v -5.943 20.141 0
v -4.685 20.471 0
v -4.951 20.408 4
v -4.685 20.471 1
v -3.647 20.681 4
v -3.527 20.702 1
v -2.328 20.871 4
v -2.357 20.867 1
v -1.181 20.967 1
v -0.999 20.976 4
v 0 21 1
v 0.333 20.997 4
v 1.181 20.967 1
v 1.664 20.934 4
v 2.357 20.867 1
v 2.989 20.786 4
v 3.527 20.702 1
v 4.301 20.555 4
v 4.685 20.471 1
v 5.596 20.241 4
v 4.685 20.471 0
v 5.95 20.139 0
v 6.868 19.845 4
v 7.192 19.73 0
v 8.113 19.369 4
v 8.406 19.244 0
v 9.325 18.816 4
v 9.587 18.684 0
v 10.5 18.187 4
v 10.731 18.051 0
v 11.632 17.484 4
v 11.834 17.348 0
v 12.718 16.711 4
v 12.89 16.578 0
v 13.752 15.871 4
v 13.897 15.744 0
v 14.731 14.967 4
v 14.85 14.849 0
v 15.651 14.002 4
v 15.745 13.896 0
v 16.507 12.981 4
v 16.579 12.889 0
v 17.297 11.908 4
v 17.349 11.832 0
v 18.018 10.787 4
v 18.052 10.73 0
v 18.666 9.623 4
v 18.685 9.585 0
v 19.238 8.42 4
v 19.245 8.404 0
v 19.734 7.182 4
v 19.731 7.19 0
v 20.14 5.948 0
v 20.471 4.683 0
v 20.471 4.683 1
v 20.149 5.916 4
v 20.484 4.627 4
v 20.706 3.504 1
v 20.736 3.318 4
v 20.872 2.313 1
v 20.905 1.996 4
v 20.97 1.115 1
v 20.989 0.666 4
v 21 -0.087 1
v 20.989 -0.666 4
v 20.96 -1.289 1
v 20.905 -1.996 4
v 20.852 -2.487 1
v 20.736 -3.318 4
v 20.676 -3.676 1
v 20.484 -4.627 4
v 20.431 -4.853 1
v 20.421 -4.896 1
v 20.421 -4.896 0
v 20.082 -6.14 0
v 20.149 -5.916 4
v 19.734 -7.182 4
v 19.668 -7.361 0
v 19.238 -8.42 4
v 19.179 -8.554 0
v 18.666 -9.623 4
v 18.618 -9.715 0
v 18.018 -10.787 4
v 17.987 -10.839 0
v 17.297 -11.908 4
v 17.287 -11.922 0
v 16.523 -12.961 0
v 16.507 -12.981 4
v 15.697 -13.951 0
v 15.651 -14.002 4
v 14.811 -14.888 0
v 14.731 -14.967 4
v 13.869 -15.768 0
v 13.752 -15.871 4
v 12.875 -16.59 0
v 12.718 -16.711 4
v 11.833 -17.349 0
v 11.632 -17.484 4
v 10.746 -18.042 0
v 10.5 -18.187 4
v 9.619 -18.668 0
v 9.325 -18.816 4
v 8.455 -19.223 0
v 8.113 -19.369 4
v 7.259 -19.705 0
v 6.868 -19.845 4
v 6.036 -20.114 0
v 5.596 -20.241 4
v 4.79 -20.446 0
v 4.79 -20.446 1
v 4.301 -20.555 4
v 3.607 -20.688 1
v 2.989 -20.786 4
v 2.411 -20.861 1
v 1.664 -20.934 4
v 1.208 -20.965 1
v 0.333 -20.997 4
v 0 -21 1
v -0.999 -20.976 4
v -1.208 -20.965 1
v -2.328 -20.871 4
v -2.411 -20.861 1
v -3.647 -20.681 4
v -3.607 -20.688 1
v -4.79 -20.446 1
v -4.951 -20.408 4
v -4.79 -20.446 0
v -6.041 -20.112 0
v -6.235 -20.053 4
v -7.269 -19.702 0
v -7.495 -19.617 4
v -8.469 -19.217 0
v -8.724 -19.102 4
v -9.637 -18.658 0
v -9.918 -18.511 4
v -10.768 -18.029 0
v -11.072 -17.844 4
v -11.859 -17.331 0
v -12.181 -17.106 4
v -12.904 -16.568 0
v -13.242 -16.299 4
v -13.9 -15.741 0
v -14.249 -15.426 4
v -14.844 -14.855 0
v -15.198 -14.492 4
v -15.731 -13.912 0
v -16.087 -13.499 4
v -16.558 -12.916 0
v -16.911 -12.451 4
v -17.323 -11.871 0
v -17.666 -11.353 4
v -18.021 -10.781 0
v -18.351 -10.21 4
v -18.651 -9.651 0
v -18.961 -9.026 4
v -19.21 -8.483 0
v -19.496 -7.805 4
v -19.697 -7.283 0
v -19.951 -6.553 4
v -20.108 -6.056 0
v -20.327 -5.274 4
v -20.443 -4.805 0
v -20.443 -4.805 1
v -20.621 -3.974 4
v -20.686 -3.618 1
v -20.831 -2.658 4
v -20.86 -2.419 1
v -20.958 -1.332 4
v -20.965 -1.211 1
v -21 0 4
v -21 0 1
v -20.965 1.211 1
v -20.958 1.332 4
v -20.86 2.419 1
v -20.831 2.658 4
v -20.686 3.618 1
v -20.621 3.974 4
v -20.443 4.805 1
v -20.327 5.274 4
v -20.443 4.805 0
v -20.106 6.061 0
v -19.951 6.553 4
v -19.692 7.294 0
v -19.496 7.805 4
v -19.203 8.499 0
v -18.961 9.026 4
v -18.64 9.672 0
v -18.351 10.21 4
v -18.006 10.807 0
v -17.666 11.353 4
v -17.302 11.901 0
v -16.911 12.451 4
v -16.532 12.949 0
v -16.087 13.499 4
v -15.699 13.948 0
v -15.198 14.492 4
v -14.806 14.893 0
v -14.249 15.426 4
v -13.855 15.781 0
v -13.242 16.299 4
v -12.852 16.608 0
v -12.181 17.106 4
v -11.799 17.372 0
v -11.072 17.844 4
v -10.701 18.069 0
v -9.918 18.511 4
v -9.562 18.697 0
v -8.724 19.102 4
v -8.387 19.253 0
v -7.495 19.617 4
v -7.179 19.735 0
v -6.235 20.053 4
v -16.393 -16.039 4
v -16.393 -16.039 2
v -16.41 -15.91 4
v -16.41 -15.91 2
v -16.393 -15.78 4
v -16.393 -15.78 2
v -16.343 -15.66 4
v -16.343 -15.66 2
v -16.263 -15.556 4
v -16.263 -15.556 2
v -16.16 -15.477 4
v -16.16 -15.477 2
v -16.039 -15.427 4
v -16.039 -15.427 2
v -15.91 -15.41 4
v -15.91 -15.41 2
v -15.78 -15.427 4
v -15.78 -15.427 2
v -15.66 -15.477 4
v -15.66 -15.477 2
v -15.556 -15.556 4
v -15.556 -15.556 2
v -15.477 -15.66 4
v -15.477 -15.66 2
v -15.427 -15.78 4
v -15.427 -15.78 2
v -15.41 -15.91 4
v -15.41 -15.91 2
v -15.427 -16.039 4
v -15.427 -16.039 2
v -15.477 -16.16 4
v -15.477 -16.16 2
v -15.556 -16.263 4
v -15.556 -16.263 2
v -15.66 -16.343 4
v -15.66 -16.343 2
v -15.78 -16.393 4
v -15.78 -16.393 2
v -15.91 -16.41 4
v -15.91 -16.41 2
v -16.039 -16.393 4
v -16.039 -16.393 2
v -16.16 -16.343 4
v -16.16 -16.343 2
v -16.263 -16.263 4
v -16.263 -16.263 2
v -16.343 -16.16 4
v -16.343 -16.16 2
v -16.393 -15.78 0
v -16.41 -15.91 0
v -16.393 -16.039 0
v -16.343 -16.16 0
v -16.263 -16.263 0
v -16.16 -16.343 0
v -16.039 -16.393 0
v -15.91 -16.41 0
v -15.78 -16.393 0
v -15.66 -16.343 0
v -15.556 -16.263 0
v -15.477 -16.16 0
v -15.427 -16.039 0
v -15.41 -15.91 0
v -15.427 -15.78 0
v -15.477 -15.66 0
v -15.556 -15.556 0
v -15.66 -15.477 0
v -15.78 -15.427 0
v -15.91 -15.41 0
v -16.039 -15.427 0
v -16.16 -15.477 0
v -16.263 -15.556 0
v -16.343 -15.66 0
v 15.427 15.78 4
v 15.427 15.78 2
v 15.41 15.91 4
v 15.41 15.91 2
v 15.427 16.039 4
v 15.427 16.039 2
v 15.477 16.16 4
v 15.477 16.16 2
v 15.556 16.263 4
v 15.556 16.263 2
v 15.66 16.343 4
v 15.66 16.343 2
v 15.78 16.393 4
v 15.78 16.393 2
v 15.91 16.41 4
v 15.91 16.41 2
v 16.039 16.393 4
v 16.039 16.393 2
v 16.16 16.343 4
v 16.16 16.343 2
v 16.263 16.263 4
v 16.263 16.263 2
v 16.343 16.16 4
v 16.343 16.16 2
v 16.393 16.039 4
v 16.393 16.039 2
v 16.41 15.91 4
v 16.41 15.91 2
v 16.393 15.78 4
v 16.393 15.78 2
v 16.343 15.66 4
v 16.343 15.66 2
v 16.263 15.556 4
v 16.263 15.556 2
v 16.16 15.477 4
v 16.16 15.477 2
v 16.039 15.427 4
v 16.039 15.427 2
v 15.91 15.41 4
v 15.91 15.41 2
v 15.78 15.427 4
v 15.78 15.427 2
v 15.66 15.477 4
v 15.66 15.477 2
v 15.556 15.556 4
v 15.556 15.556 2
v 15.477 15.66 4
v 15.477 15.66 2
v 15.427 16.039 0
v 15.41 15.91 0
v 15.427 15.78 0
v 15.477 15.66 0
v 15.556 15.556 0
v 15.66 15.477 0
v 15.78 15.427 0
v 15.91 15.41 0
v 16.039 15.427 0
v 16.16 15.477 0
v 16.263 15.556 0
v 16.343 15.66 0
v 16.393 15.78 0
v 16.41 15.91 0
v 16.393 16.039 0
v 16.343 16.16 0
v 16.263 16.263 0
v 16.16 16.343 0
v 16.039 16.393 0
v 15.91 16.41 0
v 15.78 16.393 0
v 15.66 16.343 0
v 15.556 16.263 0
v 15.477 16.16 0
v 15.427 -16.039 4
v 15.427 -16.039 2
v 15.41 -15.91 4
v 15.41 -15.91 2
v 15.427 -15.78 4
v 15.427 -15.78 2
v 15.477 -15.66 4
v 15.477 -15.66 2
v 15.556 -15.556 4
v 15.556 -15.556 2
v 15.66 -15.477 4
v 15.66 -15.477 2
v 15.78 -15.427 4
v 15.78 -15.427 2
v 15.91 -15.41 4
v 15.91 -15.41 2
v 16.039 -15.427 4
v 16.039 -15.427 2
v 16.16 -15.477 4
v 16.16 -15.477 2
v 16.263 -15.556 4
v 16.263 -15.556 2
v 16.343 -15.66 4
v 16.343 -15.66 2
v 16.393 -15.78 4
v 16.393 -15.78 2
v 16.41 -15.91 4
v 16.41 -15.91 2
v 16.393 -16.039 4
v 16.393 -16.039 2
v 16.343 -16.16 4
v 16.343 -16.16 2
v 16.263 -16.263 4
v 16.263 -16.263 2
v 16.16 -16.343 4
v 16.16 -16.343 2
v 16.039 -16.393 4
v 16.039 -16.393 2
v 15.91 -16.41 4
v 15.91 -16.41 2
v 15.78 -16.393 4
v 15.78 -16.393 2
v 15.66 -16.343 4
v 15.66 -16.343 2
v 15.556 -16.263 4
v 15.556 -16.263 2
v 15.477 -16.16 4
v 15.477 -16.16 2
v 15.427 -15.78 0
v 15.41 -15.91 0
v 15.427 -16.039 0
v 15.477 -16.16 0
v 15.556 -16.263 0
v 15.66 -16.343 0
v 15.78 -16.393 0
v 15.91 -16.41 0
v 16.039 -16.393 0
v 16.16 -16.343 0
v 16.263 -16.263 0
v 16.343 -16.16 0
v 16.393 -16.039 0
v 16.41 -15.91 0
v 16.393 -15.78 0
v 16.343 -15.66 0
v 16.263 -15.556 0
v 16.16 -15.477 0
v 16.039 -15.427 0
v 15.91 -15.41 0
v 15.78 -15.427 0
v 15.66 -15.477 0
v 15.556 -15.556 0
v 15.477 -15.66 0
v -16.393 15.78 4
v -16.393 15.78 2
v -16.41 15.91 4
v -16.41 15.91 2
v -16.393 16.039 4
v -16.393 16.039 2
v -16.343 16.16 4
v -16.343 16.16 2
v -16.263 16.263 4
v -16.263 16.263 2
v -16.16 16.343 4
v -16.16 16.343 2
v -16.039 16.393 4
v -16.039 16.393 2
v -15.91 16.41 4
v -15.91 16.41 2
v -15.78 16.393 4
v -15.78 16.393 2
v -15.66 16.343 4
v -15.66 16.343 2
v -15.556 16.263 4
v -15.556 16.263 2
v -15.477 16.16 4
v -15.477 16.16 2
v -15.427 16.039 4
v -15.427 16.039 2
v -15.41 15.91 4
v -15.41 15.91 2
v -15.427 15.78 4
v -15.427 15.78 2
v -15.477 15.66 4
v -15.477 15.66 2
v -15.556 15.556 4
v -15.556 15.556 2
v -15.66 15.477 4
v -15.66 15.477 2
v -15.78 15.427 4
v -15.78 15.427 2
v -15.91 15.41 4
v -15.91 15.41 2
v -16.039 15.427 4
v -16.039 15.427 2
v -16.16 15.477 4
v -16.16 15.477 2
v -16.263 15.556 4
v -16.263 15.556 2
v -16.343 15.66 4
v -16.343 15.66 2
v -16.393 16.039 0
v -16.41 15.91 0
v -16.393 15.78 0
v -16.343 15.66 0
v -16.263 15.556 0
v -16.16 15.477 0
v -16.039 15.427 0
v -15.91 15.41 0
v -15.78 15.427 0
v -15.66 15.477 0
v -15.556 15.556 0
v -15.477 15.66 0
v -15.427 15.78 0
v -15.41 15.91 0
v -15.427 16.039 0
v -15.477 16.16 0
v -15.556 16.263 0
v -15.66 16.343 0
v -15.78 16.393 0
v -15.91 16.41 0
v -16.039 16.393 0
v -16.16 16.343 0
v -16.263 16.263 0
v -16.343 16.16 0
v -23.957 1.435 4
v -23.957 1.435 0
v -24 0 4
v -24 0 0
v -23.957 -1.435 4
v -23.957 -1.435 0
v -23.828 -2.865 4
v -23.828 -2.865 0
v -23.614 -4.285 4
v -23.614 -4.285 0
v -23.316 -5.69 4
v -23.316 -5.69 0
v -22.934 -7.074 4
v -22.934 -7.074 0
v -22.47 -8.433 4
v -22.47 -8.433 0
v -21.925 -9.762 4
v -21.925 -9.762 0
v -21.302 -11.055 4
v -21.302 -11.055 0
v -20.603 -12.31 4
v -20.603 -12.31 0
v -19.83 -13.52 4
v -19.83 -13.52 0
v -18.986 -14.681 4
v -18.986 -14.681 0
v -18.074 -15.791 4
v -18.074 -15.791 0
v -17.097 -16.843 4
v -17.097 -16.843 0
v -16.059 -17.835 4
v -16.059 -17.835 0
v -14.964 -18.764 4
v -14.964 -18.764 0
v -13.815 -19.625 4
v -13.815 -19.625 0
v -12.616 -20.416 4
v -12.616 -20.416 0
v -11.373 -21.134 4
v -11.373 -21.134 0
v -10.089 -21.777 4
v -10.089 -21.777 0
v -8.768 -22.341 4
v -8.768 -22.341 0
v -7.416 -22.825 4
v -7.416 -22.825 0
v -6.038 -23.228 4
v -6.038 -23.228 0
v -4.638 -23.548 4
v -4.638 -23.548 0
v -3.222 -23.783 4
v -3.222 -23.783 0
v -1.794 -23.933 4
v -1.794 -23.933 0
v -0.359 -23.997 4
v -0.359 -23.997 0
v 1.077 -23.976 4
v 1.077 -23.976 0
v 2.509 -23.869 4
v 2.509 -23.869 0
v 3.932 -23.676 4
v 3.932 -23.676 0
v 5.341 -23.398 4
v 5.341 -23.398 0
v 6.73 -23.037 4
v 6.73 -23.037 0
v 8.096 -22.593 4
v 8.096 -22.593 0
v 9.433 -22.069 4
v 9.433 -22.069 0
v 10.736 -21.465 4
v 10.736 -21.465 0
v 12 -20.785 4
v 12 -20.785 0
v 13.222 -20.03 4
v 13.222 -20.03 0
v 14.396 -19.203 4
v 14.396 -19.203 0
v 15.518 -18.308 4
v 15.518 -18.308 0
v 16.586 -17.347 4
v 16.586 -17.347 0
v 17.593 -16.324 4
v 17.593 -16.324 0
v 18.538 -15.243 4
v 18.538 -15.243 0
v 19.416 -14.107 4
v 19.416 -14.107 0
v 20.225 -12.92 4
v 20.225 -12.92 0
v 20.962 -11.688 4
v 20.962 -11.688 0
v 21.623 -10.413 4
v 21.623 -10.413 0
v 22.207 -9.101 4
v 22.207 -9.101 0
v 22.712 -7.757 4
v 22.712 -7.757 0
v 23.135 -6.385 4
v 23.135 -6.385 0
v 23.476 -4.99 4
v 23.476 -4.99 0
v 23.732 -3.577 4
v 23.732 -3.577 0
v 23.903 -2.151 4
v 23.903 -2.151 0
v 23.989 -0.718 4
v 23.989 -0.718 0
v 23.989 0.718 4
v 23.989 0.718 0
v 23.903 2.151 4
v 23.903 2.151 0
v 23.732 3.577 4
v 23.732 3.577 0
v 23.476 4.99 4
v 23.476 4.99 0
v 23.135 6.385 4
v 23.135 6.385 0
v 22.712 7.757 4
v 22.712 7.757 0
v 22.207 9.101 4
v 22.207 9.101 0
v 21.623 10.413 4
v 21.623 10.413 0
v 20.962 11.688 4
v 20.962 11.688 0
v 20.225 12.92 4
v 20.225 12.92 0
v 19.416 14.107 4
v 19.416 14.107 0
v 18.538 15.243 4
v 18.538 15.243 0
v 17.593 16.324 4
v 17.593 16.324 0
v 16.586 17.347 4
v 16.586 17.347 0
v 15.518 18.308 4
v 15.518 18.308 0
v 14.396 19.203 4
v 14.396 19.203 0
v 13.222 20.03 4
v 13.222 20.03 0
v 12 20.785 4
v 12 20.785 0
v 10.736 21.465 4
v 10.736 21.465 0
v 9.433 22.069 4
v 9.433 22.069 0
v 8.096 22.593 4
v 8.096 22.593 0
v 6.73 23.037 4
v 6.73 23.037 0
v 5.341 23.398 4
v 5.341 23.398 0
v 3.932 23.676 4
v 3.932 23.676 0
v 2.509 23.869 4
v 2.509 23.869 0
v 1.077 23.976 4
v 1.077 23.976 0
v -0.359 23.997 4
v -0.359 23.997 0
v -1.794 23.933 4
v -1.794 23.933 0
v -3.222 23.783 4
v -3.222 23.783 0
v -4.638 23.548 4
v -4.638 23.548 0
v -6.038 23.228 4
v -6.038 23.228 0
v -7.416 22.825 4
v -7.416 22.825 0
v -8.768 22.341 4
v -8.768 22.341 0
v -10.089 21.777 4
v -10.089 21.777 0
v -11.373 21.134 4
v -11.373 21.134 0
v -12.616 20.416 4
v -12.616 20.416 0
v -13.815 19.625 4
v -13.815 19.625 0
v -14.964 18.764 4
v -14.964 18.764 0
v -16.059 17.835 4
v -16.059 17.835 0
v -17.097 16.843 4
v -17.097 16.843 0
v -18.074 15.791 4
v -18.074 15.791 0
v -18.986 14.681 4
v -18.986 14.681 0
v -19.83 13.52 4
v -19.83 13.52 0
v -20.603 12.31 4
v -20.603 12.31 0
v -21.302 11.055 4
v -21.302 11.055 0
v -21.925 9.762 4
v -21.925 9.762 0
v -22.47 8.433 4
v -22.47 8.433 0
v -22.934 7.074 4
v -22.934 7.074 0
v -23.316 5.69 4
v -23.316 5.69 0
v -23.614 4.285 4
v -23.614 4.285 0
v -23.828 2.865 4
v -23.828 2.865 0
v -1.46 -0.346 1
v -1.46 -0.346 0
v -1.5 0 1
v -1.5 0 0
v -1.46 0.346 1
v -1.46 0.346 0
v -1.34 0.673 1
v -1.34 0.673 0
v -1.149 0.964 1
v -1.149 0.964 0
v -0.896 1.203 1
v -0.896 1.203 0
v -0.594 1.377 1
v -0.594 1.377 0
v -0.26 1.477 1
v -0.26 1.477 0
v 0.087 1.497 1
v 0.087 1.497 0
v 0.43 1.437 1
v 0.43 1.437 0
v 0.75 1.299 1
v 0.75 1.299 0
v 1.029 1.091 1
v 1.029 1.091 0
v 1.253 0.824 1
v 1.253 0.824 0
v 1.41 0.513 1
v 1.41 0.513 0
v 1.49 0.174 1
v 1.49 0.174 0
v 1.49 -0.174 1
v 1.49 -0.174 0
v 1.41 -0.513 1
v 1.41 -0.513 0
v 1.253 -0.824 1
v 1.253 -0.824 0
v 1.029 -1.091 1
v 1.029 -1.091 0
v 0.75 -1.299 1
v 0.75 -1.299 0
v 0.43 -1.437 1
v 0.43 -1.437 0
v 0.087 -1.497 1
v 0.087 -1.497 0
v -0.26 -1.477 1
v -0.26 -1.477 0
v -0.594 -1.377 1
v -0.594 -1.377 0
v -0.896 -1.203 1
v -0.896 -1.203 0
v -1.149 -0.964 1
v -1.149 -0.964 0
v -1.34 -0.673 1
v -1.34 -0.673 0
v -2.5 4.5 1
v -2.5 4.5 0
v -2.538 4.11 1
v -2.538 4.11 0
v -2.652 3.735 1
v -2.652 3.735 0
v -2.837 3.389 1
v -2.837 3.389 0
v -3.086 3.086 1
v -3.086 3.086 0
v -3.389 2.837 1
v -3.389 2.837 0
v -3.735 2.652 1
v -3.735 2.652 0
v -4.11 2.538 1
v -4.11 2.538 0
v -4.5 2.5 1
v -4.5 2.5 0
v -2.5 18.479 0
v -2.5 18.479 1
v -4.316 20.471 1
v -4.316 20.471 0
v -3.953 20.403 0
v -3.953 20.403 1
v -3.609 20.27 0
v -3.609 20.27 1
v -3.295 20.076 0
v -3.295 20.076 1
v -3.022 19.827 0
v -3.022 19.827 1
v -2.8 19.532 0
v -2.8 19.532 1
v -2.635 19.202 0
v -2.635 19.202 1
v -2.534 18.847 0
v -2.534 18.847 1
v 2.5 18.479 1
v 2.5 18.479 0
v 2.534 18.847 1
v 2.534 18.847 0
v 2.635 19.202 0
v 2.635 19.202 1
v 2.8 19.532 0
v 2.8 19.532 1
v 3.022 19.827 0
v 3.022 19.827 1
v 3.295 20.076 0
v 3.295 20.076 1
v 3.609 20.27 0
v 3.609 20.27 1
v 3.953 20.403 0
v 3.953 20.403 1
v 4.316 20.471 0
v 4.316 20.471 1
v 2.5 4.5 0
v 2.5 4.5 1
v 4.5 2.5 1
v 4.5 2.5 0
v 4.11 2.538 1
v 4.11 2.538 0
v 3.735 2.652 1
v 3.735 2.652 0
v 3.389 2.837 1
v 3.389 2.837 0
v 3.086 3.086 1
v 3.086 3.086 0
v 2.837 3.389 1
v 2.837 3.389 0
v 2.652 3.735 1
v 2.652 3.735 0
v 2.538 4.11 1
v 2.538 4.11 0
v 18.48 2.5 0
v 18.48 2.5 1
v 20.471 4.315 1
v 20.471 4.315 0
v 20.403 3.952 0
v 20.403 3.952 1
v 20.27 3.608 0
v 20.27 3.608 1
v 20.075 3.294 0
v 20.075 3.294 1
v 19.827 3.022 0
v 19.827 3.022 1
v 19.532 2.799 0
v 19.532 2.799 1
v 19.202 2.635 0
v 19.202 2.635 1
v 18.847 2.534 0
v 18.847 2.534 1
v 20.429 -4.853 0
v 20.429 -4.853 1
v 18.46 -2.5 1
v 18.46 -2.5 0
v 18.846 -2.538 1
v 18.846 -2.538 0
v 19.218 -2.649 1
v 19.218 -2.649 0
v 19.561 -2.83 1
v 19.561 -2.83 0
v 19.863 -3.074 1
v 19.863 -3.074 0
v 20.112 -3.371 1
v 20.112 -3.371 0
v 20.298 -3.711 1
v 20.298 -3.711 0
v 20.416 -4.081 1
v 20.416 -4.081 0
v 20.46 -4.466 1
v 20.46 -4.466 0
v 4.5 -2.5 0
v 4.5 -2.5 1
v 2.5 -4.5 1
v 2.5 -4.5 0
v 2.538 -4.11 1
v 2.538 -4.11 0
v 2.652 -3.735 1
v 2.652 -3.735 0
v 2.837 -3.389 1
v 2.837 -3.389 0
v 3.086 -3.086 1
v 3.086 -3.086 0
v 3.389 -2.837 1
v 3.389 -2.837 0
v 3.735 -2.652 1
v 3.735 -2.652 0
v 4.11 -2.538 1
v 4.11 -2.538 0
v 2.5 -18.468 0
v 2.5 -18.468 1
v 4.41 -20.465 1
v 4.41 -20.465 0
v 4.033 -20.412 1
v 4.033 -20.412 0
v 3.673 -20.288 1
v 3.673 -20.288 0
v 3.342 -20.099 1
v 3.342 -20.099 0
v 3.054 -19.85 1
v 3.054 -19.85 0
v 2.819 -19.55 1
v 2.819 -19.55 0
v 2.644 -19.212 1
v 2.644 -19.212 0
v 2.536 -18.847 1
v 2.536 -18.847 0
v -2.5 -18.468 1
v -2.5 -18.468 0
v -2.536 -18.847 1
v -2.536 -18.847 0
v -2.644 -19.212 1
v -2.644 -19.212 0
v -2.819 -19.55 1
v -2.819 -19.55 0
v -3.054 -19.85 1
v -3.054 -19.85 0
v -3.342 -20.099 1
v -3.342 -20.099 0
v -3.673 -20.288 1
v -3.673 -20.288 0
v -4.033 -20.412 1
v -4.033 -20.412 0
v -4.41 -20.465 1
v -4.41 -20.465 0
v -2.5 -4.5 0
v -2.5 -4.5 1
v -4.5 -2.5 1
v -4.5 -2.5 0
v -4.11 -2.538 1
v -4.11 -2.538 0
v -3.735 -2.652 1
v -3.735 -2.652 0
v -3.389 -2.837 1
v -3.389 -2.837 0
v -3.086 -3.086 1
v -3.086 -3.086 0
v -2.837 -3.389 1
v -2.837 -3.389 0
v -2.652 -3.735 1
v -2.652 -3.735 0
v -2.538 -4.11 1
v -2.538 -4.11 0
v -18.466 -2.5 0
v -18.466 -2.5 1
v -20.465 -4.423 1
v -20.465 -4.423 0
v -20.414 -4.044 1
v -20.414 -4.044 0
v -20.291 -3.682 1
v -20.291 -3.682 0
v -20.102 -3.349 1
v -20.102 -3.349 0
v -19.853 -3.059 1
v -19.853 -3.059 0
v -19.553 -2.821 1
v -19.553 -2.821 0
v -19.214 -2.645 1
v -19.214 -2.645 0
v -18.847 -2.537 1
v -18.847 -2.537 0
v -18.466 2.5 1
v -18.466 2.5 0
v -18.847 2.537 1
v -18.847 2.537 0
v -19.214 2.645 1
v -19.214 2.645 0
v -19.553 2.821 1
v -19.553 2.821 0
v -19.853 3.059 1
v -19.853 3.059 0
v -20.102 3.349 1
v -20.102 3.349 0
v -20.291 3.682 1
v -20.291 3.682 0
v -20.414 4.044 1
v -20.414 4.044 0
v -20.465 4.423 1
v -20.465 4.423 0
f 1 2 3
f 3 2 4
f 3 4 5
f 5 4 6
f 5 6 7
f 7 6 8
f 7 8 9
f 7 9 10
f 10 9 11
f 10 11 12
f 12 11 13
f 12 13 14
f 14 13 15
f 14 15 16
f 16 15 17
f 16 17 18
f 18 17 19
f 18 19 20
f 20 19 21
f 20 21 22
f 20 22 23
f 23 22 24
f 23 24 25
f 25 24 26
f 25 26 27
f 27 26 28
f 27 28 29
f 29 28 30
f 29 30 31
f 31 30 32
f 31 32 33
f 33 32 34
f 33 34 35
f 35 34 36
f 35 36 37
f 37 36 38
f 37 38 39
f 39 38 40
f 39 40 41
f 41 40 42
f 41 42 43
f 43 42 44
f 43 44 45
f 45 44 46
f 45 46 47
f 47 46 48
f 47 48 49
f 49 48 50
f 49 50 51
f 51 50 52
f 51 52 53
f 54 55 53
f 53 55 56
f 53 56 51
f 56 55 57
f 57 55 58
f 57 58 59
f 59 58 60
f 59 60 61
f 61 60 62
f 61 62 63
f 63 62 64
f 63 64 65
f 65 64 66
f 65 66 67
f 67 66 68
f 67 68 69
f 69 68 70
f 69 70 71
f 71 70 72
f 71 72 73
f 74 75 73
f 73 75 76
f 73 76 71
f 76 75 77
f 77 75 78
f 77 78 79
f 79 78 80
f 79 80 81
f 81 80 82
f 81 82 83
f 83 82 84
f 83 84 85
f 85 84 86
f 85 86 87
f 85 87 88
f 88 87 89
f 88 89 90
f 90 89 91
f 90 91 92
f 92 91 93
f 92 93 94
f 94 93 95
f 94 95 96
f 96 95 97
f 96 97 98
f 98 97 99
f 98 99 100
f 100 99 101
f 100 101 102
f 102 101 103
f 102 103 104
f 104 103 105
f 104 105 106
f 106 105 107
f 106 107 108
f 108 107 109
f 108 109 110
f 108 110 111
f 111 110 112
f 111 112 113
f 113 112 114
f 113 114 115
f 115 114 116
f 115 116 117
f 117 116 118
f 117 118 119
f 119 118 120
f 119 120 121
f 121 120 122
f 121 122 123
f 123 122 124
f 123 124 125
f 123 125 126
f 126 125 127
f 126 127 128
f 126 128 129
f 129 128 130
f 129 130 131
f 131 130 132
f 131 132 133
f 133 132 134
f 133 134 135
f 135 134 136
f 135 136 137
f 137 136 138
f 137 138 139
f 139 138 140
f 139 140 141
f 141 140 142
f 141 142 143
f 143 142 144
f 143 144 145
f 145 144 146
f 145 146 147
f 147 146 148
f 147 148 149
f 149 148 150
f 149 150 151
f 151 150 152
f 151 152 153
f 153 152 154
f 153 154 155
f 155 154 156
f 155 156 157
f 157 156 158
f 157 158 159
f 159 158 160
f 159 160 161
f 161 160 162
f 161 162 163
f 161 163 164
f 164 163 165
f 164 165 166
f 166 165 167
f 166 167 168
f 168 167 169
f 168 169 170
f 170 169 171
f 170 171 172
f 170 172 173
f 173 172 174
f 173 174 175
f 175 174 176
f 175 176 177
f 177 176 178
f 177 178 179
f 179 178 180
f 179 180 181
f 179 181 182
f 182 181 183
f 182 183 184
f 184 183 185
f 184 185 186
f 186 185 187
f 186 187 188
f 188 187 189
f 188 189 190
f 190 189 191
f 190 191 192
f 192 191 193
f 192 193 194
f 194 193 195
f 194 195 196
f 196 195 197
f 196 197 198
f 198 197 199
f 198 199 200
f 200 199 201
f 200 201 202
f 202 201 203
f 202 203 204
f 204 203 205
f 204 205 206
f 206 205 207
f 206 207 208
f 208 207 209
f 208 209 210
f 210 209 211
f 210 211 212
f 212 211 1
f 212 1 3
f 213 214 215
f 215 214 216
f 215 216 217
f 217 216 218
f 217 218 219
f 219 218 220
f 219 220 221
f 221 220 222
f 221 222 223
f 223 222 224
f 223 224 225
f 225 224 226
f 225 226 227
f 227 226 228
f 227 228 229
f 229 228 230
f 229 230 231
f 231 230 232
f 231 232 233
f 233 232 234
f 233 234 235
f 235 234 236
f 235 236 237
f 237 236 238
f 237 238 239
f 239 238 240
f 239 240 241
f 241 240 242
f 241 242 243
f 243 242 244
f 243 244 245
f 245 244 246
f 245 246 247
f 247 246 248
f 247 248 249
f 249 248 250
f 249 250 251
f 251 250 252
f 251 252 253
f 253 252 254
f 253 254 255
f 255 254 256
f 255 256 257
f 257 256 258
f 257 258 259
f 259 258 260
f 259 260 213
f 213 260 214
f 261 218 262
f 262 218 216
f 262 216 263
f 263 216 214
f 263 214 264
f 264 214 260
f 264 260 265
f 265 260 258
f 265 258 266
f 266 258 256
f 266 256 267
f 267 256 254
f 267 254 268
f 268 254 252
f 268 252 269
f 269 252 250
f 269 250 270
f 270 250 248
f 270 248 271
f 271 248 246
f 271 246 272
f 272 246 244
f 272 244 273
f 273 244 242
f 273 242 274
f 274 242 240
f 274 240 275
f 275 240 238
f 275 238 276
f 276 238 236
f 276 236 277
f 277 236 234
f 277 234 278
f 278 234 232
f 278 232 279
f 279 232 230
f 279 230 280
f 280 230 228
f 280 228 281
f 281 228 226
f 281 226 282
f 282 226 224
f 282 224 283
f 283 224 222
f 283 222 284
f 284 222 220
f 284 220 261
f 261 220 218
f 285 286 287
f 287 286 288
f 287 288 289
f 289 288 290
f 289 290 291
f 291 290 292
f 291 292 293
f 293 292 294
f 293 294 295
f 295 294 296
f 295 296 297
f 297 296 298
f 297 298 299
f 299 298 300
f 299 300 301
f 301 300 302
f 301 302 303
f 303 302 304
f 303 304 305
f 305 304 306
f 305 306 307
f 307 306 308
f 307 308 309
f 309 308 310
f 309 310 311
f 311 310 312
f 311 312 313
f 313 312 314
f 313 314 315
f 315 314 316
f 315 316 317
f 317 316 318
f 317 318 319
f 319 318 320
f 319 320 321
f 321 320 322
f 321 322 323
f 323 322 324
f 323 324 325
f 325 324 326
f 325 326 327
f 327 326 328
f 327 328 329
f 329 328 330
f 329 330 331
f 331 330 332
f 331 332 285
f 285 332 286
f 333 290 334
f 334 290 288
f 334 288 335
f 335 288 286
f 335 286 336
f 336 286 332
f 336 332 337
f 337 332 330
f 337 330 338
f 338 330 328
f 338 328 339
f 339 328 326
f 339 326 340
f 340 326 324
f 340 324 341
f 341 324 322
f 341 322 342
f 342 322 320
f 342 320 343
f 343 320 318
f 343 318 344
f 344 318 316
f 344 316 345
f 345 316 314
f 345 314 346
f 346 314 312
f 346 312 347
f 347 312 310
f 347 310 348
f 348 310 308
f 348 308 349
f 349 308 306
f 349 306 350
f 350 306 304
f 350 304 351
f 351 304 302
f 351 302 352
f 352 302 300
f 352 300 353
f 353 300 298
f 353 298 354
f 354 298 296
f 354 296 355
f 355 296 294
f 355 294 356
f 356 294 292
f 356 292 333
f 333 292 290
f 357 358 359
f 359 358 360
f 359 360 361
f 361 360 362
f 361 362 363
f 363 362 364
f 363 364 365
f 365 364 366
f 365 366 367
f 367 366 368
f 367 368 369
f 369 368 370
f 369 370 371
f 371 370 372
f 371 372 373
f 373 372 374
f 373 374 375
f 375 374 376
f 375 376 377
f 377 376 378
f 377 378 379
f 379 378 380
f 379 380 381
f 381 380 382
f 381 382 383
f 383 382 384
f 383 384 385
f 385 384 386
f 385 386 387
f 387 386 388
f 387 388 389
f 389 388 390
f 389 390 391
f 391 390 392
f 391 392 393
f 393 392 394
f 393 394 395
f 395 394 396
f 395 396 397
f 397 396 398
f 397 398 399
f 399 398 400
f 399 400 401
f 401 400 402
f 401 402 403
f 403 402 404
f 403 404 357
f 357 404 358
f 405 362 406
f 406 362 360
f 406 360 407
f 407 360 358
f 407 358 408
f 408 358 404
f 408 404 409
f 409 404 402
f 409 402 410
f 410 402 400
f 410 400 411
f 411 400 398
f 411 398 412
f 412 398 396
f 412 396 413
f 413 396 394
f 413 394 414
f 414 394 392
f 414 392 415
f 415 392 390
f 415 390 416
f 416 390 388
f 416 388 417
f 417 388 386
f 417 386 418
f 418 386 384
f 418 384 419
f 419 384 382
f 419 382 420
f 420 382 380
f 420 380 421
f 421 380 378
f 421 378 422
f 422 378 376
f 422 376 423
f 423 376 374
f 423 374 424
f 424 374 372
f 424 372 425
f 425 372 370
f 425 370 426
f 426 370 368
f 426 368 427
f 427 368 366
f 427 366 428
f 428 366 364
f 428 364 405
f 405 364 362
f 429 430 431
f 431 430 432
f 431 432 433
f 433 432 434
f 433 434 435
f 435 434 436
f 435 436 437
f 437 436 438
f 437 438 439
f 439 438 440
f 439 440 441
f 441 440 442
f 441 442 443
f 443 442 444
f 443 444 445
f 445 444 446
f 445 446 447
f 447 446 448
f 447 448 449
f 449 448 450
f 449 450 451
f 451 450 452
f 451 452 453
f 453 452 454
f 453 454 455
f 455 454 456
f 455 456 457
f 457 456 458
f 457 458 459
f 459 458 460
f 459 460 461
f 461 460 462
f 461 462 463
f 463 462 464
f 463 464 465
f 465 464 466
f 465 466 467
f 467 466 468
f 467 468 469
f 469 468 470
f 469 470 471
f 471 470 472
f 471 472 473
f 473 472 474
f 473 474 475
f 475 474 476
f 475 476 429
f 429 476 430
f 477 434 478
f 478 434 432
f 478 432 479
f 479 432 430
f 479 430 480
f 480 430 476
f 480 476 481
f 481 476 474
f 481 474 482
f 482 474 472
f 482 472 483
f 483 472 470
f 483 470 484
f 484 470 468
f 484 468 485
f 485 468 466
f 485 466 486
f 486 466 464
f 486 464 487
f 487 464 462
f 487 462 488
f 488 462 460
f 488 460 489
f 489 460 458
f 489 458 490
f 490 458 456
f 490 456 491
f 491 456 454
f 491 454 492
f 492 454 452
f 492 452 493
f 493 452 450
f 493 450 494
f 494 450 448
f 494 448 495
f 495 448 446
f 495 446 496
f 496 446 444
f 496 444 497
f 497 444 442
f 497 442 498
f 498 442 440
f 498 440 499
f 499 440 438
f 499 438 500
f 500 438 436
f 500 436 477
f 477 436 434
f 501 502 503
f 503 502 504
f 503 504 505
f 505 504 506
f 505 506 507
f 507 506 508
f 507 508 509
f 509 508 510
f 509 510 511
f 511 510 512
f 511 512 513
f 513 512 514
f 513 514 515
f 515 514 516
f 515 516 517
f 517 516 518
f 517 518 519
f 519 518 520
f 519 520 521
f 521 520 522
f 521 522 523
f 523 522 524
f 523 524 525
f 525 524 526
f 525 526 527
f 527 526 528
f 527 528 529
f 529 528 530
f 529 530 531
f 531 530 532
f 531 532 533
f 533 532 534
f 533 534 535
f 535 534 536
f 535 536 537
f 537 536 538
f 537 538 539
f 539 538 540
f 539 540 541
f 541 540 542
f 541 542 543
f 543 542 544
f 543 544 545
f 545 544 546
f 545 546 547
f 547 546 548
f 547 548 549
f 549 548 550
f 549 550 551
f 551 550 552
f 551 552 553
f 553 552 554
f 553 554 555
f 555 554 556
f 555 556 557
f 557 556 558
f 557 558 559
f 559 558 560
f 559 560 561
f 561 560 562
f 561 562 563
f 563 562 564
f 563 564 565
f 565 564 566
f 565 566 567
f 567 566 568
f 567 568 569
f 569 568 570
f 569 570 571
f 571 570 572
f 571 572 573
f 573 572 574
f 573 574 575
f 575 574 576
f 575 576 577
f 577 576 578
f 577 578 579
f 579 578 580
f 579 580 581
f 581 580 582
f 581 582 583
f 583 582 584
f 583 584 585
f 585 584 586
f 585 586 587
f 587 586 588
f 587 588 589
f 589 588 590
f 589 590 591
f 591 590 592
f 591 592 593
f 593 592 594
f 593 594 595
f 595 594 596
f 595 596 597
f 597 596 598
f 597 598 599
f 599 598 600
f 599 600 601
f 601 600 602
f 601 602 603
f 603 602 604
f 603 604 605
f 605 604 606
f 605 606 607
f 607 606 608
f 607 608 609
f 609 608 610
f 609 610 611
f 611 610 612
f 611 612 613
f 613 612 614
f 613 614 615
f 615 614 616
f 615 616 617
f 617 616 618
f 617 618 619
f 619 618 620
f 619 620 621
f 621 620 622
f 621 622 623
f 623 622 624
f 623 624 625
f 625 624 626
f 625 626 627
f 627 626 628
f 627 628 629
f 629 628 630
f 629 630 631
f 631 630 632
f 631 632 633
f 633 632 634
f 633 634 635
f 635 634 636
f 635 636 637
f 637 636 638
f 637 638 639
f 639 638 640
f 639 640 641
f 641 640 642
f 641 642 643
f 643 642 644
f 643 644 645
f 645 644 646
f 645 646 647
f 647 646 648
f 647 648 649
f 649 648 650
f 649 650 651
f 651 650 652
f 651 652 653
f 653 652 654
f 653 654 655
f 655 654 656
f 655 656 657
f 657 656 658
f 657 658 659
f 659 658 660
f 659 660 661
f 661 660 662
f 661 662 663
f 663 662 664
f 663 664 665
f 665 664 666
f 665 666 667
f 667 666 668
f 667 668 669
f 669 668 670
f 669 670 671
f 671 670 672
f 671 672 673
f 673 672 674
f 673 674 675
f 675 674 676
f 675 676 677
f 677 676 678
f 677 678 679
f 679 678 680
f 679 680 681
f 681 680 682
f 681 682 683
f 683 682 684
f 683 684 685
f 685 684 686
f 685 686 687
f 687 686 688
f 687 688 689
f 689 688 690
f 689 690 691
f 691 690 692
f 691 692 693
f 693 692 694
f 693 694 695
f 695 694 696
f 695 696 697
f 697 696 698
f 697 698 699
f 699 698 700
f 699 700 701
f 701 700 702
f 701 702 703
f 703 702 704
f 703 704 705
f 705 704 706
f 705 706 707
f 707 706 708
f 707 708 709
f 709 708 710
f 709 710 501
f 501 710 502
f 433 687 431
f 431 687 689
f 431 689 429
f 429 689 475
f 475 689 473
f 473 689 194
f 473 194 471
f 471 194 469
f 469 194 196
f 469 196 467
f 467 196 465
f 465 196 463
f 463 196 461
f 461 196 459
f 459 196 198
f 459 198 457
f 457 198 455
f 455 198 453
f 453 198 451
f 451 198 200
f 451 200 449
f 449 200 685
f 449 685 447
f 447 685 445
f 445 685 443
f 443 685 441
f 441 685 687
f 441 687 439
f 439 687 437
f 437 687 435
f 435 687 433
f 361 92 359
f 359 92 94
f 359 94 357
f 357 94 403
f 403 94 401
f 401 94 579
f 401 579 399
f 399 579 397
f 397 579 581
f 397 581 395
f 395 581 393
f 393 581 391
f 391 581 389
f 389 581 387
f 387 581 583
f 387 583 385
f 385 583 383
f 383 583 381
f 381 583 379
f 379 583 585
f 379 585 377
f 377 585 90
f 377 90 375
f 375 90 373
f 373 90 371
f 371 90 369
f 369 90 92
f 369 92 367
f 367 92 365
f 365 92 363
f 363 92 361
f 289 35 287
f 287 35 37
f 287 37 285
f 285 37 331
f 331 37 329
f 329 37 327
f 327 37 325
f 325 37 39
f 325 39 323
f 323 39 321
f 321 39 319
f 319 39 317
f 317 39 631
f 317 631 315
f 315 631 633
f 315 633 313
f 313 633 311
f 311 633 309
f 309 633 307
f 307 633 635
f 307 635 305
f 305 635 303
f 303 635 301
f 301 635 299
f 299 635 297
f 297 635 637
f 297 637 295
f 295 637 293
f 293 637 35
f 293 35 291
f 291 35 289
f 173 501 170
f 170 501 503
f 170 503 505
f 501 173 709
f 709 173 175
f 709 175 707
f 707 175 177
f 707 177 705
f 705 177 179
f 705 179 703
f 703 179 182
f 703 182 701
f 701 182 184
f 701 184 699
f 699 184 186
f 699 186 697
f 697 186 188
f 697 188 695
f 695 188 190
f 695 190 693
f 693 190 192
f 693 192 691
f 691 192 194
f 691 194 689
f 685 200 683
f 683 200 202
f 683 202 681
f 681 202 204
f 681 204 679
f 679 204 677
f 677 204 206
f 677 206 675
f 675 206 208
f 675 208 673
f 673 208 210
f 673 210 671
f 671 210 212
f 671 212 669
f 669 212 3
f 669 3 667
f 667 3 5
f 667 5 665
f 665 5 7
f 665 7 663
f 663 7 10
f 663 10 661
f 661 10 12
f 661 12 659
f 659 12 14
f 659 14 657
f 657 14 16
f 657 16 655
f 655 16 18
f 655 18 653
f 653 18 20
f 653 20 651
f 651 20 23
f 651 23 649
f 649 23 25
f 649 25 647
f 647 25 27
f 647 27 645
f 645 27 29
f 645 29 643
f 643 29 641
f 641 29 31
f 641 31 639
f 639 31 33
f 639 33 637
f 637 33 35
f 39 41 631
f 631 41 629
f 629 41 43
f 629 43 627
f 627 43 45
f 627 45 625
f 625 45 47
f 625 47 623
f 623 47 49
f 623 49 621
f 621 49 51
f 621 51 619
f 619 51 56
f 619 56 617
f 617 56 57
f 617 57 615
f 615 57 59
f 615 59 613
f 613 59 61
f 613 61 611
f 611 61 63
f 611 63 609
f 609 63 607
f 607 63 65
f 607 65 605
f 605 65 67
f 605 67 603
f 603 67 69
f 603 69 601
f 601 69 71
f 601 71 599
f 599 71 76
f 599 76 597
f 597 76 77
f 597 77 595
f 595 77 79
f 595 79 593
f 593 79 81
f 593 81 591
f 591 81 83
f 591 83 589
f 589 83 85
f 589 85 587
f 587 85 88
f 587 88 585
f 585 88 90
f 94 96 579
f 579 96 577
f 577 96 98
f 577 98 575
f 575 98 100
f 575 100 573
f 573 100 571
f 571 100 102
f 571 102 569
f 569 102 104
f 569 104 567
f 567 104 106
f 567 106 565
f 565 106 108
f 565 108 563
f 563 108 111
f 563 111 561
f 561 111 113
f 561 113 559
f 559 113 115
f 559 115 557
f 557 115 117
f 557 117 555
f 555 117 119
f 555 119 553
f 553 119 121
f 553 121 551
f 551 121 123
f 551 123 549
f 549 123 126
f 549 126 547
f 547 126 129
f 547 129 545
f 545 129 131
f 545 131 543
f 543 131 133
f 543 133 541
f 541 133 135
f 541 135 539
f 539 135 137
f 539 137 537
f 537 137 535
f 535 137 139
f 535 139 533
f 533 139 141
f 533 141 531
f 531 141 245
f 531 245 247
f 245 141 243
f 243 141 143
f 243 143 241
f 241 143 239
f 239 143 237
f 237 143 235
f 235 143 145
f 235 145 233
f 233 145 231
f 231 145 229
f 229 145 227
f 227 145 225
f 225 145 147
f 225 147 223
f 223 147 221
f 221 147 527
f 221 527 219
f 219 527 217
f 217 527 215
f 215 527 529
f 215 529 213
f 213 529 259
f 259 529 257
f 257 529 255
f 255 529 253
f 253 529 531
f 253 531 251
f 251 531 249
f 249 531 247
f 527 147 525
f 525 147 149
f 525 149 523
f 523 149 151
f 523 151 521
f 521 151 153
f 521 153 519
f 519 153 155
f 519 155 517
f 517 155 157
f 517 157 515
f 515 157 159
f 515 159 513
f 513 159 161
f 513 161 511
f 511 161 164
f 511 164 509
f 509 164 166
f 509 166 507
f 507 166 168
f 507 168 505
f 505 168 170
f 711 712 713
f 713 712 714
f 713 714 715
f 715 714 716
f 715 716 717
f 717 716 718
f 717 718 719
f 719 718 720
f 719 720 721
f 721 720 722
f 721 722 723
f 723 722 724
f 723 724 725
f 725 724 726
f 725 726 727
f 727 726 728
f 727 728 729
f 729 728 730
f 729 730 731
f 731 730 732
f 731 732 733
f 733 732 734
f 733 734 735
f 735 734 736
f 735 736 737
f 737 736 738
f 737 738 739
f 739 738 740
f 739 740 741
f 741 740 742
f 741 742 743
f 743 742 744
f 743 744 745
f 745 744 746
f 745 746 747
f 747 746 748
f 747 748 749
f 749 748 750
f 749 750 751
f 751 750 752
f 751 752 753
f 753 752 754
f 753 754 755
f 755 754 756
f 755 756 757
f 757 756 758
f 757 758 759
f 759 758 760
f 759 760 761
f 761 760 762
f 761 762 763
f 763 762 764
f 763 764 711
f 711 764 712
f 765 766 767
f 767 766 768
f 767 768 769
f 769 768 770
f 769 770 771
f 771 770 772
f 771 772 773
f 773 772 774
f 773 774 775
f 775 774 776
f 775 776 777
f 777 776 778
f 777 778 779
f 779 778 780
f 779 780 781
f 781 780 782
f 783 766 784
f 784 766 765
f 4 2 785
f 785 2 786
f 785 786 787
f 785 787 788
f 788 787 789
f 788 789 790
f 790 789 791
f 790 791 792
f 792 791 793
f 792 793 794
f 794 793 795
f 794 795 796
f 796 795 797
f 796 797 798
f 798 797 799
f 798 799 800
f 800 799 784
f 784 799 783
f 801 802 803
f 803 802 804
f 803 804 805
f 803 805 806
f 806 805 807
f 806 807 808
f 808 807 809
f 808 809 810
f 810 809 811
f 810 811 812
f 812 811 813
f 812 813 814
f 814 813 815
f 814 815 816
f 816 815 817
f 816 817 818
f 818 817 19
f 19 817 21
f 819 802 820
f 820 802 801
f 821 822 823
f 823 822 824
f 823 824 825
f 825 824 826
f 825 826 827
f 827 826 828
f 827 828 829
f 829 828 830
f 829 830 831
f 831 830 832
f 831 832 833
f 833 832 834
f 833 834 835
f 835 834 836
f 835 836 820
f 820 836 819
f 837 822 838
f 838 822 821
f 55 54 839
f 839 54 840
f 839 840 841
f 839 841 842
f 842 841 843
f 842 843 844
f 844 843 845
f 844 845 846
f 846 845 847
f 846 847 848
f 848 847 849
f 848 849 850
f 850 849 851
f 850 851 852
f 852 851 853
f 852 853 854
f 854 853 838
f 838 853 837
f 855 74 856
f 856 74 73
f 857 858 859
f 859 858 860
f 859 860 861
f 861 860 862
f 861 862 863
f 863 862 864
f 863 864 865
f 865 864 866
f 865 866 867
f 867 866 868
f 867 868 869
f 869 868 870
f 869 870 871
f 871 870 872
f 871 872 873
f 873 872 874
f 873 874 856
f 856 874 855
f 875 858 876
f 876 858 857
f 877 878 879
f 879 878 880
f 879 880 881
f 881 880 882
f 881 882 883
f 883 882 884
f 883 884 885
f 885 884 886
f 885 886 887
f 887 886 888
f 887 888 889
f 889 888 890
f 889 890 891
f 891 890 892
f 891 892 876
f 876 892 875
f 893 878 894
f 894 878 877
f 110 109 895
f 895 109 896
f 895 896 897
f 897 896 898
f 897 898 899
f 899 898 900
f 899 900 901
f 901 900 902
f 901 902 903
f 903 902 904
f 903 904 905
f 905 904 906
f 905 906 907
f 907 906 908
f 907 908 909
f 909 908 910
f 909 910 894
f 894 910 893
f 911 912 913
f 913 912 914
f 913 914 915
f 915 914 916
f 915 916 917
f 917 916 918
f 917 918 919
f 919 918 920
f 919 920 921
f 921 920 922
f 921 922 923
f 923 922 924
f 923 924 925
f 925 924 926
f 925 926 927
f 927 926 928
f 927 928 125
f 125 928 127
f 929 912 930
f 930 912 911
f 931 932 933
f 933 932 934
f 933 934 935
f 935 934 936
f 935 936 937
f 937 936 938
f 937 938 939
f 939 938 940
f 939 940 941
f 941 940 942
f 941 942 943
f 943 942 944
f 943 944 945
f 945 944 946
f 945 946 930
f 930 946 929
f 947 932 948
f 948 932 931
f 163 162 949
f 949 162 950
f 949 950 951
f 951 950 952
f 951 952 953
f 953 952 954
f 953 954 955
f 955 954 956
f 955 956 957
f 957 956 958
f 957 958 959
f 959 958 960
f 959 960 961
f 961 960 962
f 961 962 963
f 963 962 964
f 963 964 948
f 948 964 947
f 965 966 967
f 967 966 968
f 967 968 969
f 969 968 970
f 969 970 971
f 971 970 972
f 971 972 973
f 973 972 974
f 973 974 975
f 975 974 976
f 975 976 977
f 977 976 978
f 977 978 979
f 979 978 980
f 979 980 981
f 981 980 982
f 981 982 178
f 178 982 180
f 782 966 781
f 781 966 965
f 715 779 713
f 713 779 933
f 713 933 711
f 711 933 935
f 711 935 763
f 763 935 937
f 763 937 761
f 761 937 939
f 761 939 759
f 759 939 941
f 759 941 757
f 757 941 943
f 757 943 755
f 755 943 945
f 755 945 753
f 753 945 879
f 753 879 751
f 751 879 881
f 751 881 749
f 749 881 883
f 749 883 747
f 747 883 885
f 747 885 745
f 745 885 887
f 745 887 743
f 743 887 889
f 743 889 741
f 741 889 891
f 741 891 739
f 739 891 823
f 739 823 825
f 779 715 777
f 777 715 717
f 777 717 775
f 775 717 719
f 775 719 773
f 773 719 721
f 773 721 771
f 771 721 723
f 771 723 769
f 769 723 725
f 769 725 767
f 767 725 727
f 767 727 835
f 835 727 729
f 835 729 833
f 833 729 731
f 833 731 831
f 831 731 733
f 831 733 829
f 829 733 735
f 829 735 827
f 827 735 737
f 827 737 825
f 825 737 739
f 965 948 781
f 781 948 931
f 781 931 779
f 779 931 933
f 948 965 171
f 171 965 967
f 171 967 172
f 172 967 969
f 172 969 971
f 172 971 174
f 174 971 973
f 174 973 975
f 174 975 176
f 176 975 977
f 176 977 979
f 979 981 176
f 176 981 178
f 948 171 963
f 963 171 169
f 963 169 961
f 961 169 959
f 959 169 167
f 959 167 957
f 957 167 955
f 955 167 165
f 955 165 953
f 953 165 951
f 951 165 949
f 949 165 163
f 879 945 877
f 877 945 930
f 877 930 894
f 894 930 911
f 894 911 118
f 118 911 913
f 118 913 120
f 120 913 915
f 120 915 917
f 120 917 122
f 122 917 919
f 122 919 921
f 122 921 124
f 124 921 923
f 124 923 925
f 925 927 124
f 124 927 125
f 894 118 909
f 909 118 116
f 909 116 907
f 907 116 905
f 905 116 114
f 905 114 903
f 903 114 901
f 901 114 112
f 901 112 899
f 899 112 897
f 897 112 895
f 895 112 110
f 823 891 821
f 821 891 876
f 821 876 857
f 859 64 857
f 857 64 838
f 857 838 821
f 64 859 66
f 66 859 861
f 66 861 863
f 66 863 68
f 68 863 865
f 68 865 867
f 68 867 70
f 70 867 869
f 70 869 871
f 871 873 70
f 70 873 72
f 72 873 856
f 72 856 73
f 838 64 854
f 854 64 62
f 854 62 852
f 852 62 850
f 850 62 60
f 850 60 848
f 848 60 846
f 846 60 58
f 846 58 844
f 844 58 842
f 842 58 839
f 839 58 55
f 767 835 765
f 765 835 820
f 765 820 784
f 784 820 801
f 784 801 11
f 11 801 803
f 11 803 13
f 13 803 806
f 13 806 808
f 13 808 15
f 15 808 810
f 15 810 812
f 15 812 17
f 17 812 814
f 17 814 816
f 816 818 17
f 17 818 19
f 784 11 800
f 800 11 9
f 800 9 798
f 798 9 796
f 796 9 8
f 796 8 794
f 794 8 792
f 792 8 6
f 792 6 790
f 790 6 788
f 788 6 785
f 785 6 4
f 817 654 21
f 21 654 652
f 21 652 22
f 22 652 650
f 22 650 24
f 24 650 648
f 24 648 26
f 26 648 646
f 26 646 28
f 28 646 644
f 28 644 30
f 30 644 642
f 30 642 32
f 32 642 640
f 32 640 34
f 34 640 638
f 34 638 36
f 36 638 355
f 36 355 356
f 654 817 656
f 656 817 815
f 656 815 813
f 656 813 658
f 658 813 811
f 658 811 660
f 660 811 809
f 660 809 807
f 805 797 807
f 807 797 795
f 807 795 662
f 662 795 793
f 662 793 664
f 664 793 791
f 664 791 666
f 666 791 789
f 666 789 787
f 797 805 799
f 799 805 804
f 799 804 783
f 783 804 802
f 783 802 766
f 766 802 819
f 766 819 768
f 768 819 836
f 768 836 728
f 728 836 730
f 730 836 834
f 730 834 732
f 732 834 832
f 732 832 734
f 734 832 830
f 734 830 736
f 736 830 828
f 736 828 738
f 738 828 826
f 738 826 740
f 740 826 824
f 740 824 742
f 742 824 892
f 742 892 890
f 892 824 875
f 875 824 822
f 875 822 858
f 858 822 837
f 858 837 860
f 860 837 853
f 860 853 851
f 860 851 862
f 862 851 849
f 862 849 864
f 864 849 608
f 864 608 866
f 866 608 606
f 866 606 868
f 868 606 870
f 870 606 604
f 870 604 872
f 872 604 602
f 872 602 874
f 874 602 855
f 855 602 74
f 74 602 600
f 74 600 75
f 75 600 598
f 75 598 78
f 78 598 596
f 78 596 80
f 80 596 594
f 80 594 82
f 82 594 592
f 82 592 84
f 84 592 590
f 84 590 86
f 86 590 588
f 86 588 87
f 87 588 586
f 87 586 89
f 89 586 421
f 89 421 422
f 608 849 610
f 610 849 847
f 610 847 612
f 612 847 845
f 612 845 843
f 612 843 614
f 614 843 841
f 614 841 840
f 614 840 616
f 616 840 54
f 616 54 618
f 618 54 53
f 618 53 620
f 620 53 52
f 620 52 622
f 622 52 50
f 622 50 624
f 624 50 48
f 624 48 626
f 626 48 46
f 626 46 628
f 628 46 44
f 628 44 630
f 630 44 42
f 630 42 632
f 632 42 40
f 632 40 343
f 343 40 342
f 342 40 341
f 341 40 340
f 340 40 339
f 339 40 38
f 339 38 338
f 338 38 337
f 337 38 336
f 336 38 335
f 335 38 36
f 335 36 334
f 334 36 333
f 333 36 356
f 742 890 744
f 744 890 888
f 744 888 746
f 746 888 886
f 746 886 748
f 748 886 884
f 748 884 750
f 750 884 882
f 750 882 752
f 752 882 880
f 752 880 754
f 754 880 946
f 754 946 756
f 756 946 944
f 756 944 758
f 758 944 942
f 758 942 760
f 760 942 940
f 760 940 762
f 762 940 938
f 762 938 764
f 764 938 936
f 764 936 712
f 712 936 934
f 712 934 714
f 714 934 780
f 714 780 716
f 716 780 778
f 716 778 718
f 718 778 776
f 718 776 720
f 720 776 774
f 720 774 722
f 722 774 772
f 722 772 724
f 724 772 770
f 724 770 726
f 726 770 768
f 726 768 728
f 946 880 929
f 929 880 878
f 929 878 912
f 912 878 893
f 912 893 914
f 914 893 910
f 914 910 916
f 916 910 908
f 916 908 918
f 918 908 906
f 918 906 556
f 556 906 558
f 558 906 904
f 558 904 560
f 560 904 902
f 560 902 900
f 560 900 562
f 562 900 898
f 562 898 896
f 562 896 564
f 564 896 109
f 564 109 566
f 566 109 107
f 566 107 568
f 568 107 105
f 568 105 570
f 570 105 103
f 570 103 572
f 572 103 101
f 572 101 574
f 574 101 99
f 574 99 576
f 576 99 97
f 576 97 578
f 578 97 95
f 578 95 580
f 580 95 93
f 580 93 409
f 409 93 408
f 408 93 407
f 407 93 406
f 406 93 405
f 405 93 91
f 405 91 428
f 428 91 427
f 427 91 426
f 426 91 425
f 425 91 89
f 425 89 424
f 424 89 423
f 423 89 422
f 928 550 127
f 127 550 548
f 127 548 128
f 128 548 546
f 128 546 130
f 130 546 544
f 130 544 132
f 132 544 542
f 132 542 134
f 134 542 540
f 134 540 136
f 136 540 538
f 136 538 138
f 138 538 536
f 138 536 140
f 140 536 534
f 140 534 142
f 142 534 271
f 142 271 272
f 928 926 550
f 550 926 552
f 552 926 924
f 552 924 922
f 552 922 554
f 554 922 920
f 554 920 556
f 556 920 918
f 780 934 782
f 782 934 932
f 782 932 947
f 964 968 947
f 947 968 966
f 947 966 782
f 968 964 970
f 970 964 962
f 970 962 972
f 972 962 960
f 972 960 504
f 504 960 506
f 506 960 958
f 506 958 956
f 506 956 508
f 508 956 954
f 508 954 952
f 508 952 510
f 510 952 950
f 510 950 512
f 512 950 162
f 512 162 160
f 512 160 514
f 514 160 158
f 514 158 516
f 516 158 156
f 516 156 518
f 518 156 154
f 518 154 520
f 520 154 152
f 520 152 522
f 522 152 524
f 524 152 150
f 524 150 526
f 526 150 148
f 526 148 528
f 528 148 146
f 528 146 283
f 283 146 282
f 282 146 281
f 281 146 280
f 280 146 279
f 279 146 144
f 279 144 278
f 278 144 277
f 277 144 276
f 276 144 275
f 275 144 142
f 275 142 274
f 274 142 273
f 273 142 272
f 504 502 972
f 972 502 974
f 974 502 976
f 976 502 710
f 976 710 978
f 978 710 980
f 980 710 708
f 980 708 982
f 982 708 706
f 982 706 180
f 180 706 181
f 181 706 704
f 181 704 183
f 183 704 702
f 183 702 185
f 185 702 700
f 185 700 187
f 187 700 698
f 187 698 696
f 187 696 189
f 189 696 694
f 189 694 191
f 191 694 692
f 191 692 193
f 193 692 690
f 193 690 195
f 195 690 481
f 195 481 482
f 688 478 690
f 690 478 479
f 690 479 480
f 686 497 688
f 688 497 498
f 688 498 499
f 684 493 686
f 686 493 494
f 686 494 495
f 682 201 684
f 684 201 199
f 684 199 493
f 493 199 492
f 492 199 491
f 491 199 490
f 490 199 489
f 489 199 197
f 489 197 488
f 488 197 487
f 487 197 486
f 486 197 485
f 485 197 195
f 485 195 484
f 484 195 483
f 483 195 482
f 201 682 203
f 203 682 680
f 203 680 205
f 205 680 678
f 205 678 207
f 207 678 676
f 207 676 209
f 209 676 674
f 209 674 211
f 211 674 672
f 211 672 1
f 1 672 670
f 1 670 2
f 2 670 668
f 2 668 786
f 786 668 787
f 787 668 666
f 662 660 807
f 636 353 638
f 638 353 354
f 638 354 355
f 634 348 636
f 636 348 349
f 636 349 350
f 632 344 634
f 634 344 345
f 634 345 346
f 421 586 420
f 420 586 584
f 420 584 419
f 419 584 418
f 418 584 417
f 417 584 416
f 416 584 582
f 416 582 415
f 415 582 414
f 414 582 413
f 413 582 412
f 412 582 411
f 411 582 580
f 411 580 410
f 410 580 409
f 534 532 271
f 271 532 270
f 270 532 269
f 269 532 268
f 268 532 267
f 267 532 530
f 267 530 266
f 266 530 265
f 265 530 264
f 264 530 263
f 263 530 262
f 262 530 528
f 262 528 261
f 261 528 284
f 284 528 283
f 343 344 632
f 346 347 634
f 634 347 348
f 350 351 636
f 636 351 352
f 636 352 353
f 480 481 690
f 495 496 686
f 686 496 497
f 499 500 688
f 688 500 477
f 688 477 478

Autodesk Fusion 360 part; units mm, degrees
sketch "Sketch1" plane through (0, 0, 0) normal (0, 0, 1) x (1, 0, 0)
  circle A0 centre (0, 0) radius 24
  circle A1 centre (0, 0) radius 21
  line L0 (-2.5, 4.5) -> (-2.5, 18.4793)
  line L1 (2.5, 18.4793) -> (2.5, 4.5)
  line L2 (4.5, 2.5) -> (18.4795, 2.5)
  line L3 (18.4604, -2.5) -> (4.5, -2.5)
  line L4 (-2.5, -4.5) -> (-2.5, -18.4675)
  line L5 (2.5, -18.4675) -> (2.5, -4.5)
  line L6 (-4.5, 2.5) -> (-18.4663, 2.5)
  line L7 (-18.4663, -2.5) -> (-4.5, -2.5)
  arc A2 (2.5, 4.5) -> (4.5, 2.5) centre (4.5, 4.5) ccw
  arc A3 (4.5, -2.5) -> (2.5, -4.5) centre (4.5, -4.5) ccw
  arc A4 (-2.5, -4.5) -> (-4.5, -2.5) centre (-4.5, -4.5) ccw
  arc A5 (-4.5, 2.5) -> (-2.5, 4.5) centre (-4.5, 4.5) ccw
  line L8 (4.8374, 20.4506) -> (4.5763, 20.4953)
  line L9 (-4.8374, 20.4506) -> (-4.5763, 20.4953)
  arc A6 (-2.5, 18.4793) -> (-4.8374, 20.4506) centre (-4.5, 18.4793) ccw
  arc A7 (4.8374, 20.4506) -> (2.5, 18.4793) centre (4.5, 18.4793) ccw
  line L10 (20.4509, 4.8372) -> (20.4962, 4.5723)
  line L11 (20.4291, -4.8528) -> (20.4213, -4.8958)
  arc A8 (20.4291, -4.8528) -> (18.4604, -2.5) centre (18.4604, -4.5) ccw
  arc A9 (18.4795, 2.5) -> (20.4509, 4.8372) centre (18.4795, 4.5) ccw
  line L12 (4.847, -20.4372) -> (4.7758, -20.4497)
  line L13 (-4.847, -20.4372) -> (-4.7758, -20.4497)
  arc A10 (-4.847, -20.4372) -> (-2.5, -18.4675) centre (-4.5, -18.4675) ccw
  arc A11 (2.5, -18.4675) -> (4.847, -20.4372) centre (4.5, -18.4675) ccw
  line L14 (-20.4358, 4.848) -> (-20.4448, 4.797)
  line L15 (-20.4358, -4.848) -> (-20.4448, -4.797)
  arc A12 (-18.4663, -2.5) -> (-20.4358, -4.848) centre (-18.4663, -4.5) ccw
  arc A13 (-20.4358, 4.848) -> (-18.4663, 2.5) centre (-18.4663, 4.5) ccw
  circle A14 centre (0, 0) radius 1.5
  dimension "d1" = 48
  dimension "d2" = 42
  dimension "d6" = 2
  dimension "d7" = 2
  dimension "d8" = 2
  dimension "d9" = 2
  dimension "d10" = 2
  dimension "d11" = 2
  dimension "d12" = 2
  dimension "d13" = 2
  dimension "d14" = 2
  dimension "d15" = 2
  dimension "d16" = 2
  dimension "d17" = 2
  dimension "d18" = 3
extrude "Extrude1" add sketch "Sketch1" along normal blind 1 contours A1 L0 L1 L2 L3 L4 L5 L6 L7 A2 A3 A4 A5 A6 A7 L11 A8 A9 A10 A11 A12 A13
sketch "Sketch2" plane through (0, 0, 0) normal (0, 0, 1) x (1, 0, 0)
  circle A0 centre (0, 0) radius 21
  circle A1 centre (0, 0) radius 24
  line L0 (0, 0) -> (21, 0) construction
  line L1 (0, 0) -> (22.5, 0) construction
  circle A2 centre (15.9099, 15.9099) radius 0.5
  circle A3 centre (15.9099, -15.9099) radius 0.5
  circle A4 centre (-15.9099, -15.9099) radius 0.5
  circle A5 centre (-15.9099, 15.9099) radius 0.5
  dimension "d21" = 42
  dimension "d22" = 48
  dimension "d26" = 1
  dimension "d27" = 1
  dimension "d28" = 1
  dimension "d29" = 1
extrude "Extrude2" add sketch "Sketch2" along normal blind 4
